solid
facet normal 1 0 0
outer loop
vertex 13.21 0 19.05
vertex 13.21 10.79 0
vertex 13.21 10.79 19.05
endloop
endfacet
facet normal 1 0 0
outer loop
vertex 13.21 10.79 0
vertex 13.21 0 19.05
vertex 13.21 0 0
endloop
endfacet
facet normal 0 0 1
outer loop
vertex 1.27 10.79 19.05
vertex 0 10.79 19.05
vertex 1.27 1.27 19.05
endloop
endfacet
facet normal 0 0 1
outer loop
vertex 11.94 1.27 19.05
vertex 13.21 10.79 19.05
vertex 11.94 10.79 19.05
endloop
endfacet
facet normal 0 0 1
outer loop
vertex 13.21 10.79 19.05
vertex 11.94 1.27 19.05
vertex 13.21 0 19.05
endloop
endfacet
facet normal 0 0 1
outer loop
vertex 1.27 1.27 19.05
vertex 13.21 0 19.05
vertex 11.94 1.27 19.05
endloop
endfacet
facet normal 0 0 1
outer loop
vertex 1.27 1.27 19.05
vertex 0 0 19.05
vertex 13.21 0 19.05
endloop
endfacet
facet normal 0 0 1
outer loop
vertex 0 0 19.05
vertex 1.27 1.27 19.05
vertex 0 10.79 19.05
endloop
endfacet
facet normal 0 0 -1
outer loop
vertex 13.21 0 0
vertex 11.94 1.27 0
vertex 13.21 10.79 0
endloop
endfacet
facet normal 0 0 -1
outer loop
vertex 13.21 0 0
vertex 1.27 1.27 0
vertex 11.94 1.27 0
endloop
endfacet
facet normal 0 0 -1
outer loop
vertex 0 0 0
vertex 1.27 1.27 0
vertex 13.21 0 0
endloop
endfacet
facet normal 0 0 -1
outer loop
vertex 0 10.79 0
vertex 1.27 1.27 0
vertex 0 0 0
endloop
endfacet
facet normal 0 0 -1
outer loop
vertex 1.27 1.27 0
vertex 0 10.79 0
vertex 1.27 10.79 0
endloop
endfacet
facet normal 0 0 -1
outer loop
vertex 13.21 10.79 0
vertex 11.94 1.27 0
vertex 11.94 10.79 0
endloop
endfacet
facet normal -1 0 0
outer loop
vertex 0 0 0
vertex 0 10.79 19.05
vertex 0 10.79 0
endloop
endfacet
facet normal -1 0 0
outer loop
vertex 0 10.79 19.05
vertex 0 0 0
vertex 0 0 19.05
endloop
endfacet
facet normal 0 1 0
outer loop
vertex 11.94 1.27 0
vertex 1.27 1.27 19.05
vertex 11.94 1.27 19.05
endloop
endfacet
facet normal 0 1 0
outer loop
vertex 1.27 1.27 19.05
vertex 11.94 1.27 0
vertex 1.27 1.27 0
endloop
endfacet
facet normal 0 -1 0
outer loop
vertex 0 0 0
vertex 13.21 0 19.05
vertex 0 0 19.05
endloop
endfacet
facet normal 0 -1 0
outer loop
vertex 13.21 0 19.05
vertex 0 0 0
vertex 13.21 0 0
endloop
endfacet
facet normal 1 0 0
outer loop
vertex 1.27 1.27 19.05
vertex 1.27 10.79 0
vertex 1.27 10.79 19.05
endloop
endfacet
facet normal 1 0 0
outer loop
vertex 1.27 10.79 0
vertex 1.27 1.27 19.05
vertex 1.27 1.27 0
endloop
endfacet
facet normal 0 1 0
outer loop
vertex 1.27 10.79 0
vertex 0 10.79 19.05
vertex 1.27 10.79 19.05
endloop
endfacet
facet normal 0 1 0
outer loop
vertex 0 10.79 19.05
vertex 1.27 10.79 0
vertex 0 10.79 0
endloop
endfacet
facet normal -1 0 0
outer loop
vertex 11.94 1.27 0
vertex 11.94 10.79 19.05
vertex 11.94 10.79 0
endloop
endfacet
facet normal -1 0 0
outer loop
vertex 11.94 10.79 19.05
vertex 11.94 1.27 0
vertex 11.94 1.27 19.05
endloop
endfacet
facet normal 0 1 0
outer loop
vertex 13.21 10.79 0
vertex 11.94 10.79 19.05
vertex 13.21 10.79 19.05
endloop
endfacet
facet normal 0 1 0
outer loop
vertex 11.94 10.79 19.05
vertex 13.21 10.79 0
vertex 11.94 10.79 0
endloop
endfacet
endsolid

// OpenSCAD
length = 19.05;
width = 13.21;
fin_height = 9.52;
thickness = 1.27;

cube([width, thickness, length]);
translate([0, thickness, 0]) {
    cube([thickness, fin_height, length]);
}
translate([width - thickness, thickness, 0]) {
    cube([thickness, fin_height, length]);
}
